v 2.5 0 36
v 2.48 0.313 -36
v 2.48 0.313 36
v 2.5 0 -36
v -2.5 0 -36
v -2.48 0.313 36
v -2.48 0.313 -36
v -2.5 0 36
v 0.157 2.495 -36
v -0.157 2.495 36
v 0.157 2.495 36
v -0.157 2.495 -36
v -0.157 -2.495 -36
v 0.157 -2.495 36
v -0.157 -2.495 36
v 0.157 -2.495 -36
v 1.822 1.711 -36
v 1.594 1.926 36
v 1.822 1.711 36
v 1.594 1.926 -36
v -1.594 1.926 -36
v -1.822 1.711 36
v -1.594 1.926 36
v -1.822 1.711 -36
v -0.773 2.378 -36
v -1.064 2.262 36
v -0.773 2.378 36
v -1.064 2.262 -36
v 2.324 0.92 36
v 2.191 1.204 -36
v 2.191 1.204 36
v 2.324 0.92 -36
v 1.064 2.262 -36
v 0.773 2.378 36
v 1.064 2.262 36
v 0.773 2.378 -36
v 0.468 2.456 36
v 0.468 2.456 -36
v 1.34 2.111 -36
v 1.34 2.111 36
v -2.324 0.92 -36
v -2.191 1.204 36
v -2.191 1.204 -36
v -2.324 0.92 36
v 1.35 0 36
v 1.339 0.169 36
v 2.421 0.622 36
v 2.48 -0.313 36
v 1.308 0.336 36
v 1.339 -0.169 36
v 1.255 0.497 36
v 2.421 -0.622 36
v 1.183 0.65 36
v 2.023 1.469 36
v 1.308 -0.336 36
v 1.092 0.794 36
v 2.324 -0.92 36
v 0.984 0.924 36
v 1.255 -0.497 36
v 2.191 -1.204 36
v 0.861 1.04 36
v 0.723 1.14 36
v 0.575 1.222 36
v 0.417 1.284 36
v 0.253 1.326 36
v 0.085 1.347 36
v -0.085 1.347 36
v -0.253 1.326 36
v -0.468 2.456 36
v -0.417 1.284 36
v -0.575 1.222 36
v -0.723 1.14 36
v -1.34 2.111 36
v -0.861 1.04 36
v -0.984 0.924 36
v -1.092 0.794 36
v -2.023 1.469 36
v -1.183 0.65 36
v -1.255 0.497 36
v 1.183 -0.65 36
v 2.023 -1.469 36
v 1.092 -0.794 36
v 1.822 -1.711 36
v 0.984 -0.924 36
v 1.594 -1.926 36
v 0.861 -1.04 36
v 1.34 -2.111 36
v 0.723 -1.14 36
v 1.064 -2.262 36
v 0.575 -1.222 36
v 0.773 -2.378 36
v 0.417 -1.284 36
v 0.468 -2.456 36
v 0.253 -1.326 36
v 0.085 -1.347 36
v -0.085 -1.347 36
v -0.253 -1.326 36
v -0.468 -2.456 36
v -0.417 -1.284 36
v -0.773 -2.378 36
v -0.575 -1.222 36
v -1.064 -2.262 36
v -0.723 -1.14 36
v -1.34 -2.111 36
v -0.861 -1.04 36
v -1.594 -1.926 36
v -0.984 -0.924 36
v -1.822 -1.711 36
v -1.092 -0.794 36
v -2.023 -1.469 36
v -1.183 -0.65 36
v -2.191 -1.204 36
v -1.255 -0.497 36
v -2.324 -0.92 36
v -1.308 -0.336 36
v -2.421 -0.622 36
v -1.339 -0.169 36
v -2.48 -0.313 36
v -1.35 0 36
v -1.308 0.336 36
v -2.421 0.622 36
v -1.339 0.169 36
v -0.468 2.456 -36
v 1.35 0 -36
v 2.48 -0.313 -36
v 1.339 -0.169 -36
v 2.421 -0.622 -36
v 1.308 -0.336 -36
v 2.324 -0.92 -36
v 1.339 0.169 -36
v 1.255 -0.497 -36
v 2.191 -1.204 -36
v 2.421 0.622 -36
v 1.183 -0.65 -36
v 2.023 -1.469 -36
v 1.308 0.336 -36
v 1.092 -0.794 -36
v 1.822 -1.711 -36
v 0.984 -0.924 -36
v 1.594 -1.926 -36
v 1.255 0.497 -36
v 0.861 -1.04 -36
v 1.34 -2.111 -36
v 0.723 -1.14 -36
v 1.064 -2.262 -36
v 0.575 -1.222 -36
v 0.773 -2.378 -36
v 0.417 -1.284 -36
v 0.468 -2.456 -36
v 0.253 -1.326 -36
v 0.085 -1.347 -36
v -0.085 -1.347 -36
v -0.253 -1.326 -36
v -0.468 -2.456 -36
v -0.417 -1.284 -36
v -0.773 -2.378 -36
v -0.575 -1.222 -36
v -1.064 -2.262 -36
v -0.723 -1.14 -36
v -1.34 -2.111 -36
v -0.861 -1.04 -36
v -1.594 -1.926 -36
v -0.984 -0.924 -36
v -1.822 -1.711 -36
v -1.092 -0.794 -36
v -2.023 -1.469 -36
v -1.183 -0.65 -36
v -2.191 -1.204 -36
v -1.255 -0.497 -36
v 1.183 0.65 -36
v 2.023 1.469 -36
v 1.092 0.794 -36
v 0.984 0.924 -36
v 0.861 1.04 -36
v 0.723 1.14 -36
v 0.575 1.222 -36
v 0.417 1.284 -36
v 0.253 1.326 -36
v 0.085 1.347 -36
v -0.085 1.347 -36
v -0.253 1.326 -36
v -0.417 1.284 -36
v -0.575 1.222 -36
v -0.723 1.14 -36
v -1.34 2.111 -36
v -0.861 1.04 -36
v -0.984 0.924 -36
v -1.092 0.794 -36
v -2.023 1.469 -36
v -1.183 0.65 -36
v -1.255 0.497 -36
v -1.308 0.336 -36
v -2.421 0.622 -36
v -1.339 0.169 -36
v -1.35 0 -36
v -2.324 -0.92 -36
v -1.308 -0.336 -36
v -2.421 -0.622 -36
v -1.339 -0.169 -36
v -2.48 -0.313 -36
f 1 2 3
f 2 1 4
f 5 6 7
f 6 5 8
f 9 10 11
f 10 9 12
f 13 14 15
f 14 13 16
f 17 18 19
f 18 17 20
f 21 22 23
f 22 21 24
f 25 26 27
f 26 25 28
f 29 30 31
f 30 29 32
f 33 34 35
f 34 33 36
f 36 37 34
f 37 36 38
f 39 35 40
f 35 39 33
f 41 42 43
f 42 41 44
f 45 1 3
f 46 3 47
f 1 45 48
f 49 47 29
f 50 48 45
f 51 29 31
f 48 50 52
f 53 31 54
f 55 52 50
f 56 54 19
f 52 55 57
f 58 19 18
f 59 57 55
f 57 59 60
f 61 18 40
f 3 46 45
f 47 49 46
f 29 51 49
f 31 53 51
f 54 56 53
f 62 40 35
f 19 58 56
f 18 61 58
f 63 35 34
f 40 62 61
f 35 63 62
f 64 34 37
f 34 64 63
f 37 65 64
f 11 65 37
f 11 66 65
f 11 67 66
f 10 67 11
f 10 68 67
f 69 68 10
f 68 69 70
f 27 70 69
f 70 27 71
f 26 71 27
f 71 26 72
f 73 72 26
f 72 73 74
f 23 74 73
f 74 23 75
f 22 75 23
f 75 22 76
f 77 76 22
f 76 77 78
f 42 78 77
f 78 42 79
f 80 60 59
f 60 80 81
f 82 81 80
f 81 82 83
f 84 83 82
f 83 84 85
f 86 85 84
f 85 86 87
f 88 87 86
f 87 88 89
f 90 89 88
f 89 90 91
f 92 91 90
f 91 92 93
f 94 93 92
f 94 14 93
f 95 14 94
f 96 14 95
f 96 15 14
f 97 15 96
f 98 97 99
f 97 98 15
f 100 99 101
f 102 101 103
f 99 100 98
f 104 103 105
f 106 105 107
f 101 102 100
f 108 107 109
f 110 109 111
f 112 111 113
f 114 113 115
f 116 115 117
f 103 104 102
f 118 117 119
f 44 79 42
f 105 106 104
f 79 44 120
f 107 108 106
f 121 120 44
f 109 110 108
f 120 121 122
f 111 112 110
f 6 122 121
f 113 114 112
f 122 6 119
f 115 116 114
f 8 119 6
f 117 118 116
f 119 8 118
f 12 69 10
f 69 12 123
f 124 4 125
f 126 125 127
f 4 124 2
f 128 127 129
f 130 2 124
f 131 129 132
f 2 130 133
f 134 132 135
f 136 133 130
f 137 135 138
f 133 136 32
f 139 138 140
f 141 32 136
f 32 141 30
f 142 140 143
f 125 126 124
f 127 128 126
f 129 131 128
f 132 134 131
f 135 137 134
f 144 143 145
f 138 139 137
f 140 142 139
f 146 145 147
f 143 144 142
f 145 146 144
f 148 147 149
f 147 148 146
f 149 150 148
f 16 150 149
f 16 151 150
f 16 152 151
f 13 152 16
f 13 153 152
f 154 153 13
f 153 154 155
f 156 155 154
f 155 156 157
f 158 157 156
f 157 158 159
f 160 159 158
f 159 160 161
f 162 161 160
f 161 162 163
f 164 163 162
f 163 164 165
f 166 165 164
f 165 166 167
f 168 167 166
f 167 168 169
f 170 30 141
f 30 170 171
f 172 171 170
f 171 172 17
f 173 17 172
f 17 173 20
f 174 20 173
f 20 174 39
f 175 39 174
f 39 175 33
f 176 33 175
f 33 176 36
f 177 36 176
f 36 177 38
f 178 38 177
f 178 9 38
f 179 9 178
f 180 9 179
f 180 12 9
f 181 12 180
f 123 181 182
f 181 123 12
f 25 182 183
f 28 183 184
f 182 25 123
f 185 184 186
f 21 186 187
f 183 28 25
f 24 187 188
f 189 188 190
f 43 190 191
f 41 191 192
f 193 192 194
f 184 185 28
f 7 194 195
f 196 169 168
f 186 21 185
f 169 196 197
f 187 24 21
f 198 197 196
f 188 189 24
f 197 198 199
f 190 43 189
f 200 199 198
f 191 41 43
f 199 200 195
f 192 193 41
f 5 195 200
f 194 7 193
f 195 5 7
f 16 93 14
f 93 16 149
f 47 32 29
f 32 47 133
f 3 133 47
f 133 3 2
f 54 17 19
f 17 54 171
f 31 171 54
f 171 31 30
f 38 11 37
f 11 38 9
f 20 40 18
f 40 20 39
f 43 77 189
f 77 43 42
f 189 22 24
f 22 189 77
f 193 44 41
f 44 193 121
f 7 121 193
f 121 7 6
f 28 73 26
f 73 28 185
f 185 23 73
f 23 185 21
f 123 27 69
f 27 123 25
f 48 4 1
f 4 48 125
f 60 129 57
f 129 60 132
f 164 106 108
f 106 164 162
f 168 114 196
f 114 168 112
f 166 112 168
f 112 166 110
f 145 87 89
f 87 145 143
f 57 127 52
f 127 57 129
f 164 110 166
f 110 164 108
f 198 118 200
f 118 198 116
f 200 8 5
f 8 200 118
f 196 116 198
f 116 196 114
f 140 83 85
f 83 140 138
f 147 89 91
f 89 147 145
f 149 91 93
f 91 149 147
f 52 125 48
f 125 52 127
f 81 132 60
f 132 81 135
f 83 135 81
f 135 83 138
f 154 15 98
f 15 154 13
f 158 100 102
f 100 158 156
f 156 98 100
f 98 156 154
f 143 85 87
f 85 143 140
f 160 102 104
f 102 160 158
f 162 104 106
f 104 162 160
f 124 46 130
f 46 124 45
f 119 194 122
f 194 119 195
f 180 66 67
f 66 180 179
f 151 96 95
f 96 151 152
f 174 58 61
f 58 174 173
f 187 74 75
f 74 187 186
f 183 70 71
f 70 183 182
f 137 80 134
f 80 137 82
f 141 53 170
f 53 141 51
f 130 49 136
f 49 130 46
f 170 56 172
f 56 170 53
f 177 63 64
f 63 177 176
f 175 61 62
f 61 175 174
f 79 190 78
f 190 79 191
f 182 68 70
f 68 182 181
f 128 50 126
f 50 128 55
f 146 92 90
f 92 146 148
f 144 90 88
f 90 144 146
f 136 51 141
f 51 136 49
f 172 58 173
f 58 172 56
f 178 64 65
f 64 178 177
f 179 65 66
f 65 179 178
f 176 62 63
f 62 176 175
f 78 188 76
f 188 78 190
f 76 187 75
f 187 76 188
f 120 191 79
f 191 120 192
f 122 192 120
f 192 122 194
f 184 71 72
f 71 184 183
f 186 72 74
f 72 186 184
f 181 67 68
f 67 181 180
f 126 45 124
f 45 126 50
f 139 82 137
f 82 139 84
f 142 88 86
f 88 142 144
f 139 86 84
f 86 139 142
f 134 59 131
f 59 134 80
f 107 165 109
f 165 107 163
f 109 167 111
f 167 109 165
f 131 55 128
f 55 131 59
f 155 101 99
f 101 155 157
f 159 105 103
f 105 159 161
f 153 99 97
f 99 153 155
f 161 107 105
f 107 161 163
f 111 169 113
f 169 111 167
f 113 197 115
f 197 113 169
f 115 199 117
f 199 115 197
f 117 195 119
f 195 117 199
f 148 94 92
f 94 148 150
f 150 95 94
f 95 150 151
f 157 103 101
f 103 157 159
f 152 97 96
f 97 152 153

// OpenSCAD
$fn = 50;


difference() {
	union() {
		translate(v = [0, 0, -36.0000000000]) {
			cylinder(h = 72, r = 2.5000000000);
		}
	}
	union() {
		translate(v = [0, 0, -100.0000000000]) {
			cylinder(h = 200, r = 1.3500000000);
		}
	}
}
